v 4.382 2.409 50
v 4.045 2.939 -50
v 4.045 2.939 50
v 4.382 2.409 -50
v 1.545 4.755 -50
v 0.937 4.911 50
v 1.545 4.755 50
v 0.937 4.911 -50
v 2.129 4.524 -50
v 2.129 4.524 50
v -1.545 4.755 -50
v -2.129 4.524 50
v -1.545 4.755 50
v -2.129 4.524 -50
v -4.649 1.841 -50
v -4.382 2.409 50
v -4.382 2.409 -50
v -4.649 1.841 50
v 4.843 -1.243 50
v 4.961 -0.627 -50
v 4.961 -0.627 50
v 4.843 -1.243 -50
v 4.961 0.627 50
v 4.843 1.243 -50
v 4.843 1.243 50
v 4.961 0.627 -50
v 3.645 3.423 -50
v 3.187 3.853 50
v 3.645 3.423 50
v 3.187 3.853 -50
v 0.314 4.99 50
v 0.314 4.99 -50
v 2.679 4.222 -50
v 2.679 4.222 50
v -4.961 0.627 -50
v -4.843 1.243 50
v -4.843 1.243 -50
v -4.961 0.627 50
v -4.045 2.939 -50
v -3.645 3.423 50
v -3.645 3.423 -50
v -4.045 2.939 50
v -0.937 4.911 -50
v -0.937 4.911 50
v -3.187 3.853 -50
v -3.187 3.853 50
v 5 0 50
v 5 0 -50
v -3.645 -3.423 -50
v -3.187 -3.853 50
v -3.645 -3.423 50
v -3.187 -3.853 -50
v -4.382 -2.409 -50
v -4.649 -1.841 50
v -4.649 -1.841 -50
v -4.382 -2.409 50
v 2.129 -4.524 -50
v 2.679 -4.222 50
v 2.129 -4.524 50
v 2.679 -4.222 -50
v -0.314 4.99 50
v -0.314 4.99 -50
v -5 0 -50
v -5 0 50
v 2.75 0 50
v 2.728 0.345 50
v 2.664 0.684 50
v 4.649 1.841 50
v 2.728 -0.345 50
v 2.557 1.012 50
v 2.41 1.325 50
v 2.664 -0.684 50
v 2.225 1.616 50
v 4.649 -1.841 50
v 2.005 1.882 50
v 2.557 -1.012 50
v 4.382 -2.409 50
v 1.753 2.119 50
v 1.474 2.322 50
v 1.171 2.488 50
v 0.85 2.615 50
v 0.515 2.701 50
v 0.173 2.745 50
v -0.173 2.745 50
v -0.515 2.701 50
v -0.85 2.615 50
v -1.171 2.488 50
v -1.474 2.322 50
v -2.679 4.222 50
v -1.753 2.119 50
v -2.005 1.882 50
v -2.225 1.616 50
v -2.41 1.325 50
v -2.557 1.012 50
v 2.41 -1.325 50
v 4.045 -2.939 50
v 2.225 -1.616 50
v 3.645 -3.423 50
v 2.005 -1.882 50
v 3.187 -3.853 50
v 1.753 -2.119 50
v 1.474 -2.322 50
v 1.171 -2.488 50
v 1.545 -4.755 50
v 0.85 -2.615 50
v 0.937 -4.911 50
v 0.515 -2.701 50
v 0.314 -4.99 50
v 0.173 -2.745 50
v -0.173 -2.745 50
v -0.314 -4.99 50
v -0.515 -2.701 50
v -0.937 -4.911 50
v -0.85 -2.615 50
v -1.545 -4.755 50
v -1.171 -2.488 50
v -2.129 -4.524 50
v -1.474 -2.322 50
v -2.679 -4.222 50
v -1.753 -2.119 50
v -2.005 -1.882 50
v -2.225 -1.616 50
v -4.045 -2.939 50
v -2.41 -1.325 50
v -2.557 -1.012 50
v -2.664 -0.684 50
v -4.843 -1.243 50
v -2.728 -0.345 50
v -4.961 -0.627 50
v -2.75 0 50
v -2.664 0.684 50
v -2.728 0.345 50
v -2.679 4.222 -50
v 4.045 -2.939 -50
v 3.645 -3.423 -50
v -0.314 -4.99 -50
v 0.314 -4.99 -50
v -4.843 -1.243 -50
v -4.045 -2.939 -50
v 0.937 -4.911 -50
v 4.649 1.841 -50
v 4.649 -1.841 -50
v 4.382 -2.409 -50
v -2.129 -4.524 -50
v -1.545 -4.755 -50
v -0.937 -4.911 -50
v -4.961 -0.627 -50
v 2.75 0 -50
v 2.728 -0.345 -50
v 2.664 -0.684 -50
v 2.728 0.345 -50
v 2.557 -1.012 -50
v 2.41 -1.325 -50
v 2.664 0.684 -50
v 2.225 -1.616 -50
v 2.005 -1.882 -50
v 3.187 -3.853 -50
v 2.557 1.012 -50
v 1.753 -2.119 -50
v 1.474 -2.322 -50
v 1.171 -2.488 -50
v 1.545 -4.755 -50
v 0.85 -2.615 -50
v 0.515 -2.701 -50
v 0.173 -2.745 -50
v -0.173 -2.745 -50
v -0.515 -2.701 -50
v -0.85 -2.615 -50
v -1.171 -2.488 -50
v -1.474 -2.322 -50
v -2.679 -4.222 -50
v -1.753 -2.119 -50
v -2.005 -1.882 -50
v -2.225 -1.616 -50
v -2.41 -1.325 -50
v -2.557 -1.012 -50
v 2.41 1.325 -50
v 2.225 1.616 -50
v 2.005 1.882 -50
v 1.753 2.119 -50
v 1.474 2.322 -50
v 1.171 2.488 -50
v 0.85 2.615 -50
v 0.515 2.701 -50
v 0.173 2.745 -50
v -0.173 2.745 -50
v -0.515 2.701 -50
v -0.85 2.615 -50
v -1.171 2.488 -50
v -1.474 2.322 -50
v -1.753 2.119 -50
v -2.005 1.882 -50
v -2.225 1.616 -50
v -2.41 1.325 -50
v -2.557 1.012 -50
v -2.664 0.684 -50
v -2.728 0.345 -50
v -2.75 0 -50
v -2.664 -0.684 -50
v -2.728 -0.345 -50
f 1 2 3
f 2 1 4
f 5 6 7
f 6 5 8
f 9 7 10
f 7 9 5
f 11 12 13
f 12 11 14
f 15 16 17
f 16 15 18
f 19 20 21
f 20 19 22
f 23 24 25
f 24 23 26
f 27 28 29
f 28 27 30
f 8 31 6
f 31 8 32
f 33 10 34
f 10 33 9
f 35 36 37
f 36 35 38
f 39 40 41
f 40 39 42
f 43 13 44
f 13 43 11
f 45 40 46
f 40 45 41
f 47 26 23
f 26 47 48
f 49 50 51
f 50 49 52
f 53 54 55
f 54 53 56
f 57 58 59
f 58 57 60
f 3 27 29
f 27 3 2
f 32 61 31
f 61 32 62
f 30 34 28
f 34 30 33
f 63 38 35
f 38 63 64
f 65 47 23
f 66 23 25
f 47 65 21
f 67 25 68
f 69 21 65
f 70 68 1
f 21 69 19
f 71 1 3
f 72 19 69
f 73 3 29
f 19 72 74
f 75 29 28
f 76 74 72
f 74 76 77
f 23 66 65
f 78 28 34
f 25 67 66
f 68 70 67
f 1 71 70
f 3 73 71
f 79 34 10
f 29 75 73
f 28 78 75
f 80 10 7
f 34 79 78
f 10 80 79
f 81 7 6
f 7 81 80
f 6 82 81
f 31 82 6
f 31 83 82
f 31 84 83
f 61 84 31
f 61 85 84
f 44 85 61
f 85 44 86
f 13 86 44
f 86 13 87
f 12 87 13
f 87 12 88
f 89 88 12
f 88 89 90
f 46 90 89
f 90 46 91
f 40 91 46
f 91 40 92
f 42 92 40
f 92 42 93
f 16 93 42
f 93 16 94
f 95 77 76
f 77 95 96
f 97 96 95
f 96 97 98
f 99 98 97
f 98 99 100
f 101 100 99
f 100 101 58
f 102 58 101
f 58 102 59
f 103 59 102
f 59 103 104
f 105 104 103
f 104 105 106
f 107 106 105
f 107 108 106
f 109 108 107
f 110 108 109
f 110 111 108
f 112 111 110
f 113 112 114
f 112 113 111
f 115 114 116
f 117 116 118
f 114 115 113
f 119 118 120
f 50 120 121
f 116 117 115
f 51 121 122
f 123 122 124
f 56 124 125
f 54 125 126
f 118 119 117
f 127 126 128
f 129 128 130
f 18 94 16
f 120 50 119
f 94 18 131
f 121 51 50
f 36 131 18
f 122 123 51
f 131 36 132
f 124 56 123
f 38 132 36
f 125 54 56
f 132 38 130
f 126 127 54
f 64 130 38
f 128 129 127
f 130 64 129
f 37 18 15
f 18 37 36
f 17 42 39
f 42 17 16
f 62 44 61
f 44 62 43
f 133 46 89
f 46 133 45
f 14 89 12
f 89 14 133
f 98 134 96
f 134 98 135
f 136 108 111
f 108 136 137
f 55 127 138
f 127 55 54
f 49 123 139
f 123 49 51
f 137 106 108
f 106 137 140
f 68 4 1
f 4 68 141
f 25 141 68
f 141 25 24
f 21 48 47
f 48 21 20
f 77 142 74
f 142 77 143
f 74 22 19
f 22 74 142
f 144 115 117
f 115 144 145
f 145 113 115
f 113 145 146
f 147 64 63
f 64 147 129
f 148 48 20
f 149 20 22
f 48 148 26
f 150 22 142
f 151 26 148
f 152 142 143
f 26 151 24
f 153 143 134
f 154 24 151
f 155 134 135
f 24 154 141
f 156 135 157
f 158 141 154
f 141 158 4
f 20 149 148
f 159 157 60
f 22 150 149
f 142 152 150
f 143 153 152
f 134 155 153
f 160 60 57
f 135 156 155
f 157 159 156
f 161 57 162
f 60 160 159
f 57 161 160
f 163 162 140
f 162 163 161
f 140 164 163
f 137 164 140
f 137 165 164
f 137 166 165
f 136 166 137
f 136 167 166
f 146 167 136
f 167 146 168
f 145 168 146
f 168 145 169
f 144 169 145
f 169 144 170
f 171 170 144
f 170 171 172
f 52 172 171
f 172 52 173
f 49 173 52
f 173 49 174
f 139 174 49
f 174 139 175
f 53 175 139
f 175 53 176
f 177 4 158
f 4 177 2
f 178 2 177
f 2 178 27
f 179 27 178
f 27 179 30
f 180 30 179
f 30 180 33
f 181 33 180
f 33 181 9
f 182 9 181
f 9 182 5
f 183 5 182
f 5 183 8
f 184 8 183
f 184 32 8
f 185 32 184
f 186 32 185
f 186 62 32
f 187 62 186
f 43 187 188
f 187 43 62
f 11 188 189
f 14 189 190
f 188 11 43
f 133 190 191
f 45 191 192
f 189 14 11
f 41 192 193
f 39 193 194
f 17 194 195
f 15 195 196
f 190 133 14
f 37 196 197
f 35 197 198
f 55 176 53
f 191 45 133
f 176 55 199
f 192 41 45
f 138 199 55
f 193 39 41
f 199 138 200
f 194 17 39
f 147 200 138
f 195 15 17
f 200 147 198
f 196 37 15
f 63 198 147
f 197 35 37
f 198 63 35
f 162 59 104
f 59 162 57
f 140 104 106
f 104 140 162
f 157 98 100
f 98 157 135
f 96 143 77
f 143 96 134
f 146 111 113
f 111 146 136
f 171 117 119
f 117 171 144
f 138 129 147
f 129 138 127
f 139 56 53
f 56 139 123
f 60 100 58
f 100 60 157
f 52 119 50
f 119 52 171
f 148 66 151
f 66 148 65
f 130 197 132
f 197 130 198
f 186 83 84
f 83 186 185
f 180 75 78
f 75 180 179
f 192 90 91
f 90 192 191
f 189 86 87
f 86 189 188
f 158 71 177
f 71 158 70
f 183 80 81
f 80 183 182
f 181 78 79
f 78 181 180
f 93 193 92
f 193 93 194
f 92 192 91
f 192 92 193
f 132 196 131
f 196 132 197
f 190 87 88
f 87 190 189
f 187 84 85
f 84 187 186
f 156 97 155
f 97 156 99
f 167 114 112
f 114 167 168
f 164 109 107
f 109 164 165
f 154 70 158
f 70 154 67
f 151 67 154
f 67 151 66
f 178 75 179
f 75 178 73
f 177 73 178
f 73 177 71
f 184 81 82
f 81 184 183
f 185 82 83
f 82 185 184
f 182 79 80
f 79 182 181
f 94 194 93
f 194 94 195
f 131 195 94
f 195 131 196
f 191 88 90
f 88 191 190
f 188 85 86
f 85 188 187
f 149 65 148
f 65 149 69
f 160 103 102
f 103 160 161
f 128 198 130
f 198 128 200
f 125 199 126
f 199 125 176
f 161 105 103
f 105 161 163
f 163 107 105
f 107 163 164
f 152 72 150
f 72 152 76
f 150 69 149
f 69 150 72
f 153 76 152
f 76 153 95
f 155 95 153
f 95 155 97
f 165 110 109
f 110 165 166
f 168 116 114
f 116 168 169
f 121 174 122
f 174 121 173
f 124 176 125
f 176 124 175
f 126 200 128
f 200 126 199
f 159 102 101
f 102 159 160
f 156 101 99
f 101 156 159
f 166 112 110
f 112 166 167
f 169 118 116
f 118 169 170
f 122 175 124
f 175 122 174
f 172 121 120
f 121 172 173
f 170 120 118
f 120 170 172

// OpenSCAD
$fn = 50;


difference() {
	union() {
		translate(v = [0, 0, -50.0000000000]) {
			cylinder(h = 100, r = 5.0000000000);
		}
	}
	union() {
		translate(v = [0, 0, -100.0000000000]) {
			cylinder(h = 200, r = 2.7500000000);
		}
	}
}
